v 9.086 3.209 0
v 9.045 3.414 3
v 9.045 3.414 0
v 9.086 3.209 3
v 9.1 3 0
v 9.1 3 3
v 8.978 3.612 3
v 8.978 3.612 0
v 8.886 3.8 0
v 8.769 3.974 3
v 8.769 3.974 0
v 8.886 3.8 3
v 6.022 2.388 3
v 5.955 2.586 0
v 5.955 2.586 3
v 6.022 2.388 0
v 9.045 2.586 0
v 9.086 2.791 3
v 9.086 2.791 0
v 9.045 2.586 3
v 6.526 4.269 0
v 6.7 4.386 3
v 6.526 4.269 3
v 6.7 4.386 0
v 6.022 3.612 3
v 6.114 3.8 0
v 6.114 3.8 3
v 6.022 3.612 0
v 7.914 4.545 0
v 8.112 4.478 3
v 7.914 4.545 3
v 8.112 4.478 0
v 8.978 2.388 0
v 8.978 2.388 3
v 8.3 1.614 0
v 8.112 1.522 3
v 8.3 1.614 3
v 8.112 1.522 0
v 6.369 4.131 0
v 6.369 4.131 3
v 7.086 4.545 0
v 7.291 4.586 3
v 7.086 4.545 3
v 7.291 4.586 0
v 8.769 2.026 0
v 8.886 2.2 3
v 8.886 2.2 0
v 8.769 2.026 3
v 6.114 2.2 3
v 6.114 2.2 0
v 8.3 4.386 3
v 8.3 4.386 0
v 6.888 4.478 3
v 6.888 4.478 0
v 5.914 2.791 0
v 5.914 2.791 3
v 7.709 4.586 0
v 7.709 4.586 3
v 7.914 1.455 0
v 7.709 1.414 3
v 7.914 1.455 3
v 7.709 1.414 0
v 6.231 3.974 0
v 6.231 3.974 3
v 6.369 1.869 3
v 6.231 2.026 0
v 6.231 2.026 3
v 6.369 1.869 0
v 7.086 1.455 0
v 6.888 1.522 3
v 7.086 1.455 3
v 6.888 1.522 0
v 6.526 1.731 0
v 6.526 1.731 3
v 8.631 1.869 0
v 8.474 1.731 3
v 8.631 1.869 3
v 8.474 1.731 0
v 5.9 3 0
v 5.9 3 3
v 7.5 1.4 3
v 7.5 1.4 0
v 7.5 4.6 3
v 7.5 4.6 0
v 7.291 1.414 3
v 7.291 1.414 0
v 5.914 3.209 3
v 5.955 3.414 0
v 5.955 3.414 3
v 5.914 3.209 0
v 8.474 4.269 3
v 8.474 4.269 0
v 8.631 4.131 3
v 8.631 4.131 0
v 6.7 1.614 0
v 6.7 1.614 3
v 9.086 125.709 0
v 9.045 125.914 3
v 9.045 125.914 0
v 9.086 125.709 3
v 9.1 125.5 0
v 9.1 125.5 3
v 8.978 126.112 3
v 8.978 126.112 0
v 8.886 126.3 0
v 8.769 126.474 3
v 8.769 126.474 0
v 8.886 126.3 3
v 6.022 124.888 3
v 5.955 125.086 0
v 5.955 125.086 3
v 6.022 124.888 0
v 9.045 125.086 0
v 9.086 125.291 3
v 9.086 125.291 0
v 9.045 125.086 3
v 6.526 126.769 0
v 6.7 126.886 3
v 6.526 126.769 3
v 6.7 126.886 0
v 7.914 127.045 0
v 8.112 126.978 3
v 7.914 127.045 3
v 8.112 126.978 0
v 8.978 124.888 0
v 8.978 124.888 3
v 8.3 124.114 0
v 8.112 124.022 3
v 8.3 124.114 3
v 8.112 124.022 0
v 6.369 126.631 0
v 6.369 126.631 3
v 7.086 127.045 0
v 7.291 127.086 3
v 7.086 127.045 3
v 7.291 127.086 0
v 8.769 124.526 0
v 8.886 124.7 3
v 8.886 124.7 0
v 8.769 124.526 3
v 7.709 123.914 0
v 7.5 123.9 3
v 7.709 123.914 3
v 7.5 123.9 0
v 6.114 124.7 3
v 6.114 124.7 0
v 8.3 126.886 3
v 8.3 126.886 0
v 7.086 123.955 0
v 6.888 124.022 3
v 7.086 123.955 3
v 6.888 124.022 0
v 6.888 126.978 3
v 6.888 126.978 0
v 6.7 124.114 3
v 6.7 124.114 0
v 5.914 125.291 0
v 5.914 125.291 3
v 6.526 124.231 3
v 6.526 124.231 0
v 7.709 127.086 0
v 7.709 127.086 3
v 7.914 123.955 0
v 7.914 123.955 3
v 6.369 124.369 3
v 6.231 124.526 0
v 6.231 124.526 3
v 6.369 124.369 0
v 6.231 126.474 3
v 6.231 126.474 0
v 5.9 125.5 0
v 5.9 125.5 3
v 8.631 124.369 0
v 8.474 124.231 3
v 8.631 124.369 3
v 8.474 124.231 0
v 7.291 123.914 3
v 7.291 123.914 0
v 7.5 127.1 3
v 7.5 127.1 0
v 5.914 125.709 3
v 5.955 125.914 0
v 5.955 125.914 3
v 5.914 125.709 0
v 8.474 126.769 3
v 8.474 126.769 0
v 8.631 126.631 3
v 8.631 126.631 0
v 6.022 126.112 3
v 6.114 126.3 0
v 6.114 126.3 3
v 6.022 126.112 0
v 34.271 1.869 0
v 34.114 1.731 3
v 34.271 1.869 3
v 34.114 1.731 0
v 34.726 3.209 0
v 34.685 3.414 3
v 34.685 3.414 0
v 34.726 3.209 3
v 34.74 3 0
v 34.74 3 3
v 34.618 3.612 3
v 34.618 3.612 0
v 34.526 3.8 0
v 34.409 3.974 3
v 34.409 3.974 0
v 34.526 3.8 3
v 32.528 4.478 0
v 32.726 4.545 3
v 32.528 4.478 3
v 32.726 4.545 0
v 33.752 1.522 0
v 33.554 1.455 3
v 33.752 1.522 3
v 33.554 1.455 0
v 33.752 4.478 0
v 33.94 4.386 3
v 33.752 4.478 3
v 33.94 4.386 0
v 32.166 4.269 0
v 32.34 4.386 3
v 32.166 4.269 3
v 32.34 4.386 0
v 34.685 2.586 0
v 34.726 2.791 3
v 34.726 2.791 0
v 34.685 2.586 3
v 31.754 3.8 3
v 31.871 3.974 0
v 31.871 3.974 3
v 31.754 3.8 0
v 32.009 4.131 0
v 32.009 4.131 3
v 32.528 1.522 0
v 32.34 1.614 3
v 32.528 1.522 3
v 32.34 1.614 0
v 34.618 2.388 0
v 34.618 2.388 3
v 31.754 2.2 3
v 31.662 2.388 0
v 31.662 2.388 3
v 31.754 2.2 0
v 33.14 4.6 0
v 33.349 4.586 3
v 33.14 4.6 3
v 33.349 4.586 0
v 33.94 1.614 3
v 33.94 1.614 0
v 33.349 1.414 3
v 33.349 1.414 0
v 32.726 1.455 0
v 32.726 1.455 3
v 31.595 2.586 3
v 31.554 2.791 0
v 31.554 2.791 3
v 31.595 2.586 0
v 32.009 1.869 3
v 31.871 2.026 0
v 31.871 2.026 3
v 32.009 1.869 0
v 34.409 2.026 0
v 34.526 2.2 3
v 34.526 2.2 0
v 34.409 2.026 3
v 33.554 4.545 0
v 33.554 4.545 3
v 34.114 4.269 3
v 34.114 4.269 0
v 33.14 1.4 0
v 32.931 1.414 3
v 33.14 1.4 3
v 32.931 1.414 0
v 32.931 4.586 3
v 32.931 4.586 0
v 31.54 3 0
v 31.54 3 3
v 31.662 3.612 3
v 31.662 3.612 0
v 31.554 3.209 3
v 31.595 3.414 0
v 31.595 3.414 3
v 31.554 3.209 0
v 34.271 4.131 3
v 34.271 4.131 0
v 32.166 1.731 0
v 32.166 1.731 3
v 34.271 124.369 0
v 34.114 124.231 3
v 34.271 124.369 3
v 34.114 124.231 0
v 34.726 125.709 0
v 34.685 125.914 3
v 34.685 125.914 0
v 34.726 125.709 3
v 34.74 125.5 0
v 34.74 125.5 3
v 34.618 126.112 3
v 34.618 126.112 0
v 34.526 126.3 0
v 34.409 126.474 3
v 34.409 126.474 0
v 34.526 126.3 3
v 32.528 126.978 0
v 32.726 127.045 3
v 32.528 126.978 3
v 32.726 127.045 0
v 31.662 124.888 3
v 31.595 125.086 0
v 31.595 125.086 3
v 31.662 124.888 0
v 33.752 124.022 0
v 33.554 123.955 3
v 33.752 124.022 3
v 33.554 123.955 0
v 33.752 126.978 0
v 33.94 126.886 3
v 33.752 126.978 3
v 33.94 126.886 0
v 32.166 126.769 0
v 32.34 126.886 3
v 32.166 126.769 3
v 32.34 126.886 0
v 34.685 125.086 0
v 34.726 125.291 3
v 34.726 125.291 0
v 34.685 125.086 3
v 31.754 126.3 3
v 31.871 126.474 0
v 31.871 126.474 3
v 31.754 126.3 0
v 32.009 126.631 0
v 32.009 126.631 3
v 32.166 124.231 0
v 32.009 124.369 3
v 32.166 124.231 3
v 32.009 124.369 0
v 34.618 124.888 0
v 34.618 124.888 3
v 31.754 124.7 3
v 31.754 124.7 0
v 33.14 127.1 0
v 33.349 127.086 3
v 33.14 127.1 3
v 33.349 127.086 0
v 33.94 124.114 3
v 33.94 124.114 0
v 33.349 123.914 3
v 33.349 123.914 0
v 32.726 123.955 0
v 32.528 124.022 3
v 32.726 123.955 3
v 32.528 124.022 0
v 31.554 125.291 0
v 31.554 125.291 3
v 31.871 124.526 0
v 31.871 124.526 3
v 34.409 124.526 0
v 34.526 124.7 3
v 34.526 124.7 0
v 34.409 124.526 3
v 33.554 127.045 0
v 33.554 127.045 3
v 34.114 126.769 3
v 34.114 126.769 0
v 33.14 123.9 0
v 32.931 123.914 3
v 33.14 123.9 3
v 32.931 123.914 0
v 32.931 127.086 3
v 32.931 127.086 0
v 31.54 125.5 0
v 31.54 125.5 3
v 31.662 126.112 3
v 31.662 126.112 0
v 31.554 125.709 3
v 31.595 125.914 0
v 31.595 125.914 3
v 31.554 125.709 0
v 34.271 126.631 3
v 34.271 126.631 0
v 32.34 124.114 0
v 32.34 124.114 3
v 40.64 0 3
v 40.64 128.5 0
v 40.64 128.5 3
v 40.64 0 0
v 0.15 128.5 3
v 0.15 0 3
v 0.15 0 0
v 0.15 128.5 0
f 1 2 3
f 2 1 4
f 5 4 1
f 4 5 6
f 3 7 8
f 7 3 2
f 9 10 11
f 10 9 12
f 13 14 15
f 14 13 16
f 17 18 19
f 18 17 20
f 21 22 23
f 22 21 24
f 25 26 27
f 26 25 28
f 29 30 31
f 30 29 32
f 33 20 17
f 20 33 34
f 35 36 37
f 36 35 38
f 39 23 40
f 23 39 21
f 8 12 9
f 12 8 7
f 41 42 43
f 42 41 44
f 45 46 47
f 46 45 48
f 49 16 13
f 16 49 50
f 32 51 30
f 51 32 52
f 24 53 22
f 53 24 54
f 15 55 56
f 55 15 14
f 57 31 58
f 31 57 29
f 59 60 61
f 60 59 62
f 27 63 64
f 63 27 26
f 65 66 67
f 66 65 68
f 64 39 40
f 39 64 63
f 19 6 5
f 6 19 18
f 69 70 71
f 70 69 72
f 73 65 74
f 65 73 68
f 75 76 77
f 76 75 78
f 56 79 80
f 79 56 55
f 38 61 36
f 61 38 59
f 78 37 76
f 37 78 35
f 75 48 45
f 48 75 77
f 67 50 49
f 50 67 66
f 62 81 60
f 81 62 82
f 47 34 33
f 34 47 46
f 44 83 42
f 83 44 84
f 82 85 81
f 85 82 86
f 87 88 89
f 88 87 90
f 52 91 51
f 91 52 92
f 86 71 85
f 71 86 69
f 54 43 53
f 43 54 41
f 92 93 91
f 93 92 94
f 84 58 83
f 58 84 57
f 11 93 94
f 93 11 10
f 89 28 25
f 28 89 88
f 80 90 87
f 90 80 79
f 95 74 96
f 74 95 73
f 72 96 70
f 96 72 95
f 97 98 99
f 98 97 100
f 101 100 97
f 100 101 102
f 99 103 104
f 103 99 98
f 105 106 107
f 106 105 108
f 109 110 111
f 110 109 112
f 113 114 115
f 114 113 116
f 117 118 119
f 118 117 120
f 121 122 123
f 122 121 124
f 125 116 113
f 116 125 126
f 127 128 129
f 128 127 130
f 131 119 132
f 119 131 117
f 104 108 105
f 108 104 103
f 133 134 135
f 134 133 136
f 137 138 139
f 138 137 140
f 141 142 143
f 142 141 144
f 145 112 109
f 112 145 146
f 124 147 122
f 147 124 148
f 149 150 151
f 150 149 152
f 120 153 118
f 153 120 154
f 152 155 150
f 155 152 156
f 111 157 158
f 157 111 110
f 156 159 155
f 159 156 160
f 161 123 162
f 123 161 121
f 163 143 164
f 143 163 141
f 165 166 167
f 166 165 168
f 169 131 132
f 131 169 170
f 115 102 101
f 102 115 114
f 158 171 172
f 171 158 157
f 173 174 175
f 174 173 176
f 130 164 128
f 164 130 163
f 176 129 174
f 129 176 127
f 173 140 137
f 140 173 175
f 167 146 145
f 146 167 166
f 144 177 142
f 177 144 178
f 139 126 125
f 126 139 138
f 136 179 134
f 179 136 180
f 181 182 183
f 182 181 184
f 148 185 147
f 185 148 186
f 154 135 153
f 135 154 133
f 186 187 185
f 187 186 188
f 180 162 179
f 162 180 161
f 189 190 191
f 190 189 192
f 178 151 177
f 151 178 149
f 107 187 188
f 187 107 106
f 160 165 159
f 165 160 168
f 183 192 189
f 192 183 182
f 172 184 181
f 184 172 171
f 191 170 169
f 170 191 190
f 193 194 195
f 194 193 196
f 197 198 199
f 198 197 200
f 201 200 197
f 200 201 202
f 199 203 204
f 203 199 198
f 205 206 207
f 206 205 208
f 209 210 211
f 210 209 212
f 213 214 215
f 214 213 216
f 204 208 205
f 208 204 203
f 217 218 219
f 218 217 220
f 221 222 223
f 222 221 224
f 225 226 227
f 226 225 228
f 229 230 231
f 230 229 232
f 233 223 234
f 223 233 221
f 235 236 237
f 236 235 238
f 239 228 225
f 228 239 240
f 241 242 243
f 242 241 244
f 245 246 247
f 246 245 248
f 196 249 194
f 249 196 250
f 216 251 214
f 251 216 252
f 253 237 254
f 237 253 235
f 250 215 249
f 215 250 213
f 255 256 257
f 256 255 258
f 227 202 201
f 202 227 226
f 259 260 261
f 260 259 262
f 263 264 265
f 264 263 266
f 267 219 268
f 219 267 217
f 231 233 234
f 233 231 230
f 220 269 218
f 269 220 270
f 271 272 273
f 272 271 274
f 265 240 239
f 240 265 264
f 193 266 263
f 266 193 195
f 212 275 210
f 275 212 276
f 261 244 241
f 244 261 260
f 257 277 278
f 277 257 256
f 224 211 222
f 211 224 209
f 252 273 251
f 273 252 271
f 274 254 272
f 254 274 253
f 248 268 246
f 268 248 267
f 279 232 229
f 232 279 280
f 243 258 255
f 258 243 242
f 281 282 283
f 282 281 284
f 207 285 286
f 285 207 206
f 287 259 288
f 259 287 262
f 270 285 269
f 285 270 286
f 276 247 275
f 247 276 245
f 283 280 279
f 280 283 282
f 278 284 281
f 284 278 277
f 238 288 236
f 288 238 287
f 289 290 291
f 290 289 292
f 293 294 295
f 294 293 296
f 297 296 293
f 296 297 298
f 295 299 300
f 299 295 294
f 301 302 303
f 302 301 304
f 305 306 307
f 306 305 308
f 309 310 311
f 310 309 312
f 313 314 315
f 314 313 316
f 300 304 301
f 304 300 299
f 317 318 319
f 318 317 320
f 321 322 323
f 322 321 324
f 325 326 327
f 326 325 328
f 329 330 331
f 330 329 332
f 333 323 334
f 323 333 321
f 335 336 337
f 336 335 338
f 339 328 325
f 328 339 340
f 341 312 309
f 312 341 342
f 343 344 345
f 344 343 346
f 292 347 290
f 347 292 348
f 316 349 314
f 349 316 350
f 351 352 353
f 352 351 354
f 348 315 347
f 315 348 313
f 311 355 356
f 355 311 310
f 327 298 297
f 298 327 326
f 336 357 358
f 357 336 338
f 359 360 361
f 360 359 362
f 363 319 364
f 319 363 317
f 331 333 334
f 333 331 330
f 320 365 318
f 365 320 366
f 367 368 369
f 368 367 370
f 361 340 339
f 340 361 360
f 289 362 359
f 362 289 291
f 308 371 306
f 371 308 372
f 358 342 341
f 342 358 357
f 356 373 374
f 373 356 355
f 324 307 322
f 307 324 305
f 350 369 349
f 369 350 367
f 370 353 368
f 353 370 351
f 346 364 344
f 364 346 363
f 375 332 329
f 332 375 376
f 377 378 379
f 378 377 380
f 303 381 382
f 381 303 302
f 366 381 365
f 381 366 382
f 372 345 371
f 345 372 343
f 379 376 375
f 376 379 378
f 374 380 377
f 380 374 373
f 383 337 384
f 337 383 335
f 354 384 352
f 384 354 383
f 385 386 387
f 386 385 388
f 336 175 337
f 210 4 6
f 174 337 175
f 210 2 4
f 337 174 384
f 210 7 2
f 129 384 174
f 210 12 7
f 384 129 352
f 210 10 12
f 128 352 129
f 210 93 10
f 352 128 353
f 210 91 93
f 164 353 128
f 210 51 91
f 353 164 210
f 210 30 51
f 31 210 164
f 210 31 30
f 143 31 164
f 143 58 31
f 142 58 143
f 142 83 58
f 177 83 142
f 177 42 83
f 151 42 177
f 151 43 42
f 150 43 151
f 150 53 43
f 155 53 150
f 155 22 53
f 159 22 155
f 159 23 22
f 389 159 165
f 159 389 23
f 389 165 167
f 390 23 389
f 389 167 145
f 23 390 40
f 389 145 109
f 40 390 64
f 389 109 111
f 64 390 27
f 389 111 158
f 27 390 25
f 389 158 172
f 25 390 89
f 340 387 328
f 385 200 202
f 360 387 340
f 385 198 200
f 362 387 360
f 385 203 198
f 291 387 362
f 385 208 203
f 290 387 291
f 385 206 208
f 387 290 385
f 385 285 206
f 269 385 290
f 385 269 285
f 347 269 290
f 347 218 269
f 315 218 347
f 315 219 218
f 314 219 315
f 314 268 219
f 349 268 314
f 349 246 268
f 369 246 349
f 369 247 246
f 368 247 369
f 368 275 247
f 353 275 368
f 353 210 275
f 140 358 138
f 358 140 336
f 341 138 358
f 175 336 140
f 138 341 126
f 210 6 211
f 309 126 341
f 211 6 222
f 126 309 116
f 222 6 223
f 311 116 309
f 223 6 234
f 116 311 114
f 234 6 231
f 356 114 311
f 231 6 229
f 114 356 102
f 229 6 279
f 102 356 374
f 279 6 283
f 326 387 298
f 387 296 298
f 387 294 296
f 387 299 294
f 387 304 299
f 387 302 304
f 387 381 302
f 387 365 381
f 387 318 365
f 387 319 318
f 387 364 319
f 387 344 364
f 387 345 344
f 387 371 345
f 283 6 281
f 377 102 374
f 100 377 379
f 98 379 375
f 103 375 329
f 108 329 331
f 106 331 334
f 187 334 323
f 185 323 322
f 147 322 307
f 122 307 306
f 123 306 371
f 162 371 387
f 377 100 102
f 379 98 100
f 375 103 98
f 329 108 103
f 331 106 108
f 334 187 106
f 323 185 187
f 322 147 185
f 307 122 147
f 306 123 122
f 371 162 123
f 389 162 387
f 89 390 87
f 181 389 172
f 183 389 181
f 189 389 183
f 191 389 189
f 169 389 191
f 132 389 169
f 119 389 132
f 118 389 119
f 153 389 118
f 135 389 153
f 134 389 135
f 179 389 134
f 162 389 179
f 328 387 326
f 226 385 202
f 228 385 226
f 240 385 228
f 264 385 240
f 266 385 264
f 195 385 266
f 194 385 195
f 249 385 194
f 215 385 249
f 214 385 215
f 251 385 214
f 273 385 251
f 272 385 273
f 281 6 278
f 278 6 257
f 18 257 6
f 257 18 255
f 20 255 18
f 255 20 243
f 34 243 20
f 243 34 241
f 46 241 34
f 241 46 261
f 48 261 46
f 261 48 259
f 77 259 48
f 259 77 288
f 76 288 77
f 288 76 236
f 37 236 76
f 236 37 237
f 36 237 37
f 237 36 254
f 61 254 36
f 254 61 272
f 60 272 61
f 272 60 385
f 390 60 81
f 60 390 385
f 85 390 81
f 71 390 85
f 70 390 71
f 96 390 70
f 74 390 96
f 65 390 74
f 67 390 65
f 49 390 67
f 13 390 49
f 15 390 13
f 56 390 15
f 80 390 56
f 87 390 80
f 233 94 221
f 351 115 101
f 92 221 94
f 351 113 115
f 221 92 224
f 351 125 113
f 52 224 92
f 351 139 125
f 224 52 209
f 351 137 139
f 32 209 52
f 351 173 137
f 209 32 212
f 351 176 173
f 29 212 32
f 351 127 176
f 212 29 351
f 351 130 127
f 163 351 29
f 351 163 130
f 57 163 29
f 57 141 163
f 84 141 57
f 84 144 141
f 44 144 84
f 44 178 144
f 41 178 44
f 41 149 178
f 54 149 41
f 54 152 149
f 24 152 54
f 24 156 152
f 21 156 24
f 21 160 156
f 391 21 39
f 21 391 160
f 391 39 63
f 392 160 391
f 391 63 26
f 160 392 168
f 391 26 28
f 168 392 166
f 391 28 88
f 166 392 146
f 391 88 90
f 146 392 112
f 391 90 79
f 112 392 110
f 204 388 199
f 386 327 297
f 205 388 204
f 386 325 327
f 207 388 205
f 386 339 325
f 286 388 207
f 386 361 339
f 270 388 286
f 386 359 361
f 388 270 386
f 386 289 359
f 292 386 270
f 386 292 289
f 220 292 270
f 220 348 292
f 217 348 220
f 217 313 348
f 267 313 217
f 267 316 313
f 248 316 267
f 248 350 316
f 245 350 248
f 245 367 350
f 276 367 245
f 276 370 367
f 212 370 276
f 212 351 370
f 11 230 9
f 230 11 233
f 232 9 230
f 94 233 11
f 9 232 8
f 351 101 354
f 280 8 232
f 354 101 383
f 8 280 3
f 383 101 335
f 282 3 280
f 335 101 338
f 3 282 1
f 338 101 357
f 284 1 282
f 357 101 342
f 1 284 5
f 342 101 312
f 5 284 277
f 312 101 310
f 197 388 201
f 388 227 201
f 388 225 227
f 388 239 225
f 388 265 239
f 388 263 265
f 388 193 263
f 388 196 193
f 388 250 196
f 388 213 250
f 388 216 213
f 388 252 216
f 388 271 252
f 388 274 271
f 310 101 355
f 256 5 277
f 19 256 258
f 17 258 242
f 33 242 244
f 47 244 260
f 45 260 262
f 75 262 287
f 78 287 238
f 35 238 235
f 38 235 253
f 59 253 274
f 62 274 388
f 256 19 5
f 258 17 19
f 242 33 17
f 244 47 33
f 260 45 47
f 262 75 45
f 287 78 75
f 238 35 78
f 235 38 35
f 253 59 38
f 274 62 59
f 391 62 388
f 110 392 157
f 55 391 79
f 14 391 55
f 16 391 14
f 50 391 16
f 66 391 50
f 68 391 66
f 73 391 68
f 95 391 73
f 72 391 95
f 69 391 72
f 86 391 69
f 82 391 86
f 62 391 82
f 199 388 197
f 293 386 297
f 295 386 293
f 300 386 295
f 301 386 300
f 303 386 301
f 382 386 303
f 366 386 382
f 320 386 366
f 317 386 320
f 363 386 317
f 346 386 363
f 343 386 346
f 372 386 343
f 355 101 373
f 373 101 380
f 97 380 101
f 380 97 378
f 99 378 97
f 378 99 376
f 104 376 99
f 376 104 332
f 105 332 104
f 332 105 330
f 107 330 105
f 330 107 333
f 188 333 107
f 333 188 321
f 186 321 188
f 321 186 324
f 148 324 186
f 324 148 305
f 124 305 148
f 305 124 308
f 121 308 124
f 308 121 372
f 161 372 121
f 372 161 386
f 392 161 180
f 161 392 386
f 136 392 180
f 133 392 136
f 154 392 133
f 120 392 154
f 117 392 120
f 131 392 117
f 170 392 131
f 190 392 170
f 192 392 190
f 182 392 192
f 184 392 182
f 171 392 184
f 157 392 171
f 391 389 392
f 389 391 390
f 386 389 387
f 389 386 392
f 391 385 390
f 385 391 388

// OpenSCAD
// 1TE = 5.08mm
TE=5.08;
// Plate Thickness. Default for Aluminium Eurorack Panels is 2mm
THICKNESS=3;
// Width in TE
WIDTH=8*TE;
// Default Euorack module height
HEIGHT=128.5;
// Mounting Hole Offset from the top / bottom edge
MOUNTING_HOLE_OFFSET_Y = 3;
// Mounting Hole offset from the sides
MOUNTING_HOLE_OFFSET_X = 7.5;
MOUNTING_HOLE_RADIUS = 1.6;
// Number of Facets for the Holes. 
// A reasonably high number should be picked or else holes might end up to small
HOLE_FACETS = 48;
FONT_FACETS = 48;

// Parameters for the 3.5mm Jacks
JACK_X_SPACING = 10.668;
JACK_Y_SPACING = 16.480;
JACK_HOLE_RADIUS = 4.2;

AUDIO_JACK_HOLE_RADIUS = 3;


// Font Sizes
FONT_SIZE_L=10;
FONT_SIZE_M=3.5;
FONT_DEPTH=1.5;
FONT="Corber:style=Regular";

//PLATE_COLOR=[0.1, 0.1, 0.1];
//TEXT_COLOR=[1.0, 1.0, 1.0];
TEXT_COLOR=[0.1, 0.1, 0.1];
TEXT_HEIGHT=1;
PLATE_COLOR=[1.0, 1.0, 1.0];

FONT_DISTANCE=2;
MIDI_CONNECTOR_MARGIN=2.5;
AUDIO_CONNECTOR_MARGIN=1.5;


PCB_HOLE_DISTANCE = [0,55,0];
PCB_HOLE_RADIUS = [1.6];


difference() {
    // The main plate
    translate([0.15,0,0])
    color(PLATE_COLOR)
    cube([WIDTH-0.15, HEIGHT, THICKNESS]);
    
    
    // The four mounting holes
    for (x =[MOUNTING_HOLE_OFFSET_X, WIDTH - MOUNTING_HOLE_OFFSET_X]){
        for (y =[MOUNTING_HOLE_OFFSET_Y, HEIGHT - MOUNTING_HOLE_OFFSET_Y]){
            color([1,0,0])
            translate([x, y, -0.1]){
                cylinder(h = THICKNESS+0.2, r=MOUNTING_HOLE_RADIUS, center=false, $fn=HOLE_FACETS); 
            };
        }
    };
    


}
